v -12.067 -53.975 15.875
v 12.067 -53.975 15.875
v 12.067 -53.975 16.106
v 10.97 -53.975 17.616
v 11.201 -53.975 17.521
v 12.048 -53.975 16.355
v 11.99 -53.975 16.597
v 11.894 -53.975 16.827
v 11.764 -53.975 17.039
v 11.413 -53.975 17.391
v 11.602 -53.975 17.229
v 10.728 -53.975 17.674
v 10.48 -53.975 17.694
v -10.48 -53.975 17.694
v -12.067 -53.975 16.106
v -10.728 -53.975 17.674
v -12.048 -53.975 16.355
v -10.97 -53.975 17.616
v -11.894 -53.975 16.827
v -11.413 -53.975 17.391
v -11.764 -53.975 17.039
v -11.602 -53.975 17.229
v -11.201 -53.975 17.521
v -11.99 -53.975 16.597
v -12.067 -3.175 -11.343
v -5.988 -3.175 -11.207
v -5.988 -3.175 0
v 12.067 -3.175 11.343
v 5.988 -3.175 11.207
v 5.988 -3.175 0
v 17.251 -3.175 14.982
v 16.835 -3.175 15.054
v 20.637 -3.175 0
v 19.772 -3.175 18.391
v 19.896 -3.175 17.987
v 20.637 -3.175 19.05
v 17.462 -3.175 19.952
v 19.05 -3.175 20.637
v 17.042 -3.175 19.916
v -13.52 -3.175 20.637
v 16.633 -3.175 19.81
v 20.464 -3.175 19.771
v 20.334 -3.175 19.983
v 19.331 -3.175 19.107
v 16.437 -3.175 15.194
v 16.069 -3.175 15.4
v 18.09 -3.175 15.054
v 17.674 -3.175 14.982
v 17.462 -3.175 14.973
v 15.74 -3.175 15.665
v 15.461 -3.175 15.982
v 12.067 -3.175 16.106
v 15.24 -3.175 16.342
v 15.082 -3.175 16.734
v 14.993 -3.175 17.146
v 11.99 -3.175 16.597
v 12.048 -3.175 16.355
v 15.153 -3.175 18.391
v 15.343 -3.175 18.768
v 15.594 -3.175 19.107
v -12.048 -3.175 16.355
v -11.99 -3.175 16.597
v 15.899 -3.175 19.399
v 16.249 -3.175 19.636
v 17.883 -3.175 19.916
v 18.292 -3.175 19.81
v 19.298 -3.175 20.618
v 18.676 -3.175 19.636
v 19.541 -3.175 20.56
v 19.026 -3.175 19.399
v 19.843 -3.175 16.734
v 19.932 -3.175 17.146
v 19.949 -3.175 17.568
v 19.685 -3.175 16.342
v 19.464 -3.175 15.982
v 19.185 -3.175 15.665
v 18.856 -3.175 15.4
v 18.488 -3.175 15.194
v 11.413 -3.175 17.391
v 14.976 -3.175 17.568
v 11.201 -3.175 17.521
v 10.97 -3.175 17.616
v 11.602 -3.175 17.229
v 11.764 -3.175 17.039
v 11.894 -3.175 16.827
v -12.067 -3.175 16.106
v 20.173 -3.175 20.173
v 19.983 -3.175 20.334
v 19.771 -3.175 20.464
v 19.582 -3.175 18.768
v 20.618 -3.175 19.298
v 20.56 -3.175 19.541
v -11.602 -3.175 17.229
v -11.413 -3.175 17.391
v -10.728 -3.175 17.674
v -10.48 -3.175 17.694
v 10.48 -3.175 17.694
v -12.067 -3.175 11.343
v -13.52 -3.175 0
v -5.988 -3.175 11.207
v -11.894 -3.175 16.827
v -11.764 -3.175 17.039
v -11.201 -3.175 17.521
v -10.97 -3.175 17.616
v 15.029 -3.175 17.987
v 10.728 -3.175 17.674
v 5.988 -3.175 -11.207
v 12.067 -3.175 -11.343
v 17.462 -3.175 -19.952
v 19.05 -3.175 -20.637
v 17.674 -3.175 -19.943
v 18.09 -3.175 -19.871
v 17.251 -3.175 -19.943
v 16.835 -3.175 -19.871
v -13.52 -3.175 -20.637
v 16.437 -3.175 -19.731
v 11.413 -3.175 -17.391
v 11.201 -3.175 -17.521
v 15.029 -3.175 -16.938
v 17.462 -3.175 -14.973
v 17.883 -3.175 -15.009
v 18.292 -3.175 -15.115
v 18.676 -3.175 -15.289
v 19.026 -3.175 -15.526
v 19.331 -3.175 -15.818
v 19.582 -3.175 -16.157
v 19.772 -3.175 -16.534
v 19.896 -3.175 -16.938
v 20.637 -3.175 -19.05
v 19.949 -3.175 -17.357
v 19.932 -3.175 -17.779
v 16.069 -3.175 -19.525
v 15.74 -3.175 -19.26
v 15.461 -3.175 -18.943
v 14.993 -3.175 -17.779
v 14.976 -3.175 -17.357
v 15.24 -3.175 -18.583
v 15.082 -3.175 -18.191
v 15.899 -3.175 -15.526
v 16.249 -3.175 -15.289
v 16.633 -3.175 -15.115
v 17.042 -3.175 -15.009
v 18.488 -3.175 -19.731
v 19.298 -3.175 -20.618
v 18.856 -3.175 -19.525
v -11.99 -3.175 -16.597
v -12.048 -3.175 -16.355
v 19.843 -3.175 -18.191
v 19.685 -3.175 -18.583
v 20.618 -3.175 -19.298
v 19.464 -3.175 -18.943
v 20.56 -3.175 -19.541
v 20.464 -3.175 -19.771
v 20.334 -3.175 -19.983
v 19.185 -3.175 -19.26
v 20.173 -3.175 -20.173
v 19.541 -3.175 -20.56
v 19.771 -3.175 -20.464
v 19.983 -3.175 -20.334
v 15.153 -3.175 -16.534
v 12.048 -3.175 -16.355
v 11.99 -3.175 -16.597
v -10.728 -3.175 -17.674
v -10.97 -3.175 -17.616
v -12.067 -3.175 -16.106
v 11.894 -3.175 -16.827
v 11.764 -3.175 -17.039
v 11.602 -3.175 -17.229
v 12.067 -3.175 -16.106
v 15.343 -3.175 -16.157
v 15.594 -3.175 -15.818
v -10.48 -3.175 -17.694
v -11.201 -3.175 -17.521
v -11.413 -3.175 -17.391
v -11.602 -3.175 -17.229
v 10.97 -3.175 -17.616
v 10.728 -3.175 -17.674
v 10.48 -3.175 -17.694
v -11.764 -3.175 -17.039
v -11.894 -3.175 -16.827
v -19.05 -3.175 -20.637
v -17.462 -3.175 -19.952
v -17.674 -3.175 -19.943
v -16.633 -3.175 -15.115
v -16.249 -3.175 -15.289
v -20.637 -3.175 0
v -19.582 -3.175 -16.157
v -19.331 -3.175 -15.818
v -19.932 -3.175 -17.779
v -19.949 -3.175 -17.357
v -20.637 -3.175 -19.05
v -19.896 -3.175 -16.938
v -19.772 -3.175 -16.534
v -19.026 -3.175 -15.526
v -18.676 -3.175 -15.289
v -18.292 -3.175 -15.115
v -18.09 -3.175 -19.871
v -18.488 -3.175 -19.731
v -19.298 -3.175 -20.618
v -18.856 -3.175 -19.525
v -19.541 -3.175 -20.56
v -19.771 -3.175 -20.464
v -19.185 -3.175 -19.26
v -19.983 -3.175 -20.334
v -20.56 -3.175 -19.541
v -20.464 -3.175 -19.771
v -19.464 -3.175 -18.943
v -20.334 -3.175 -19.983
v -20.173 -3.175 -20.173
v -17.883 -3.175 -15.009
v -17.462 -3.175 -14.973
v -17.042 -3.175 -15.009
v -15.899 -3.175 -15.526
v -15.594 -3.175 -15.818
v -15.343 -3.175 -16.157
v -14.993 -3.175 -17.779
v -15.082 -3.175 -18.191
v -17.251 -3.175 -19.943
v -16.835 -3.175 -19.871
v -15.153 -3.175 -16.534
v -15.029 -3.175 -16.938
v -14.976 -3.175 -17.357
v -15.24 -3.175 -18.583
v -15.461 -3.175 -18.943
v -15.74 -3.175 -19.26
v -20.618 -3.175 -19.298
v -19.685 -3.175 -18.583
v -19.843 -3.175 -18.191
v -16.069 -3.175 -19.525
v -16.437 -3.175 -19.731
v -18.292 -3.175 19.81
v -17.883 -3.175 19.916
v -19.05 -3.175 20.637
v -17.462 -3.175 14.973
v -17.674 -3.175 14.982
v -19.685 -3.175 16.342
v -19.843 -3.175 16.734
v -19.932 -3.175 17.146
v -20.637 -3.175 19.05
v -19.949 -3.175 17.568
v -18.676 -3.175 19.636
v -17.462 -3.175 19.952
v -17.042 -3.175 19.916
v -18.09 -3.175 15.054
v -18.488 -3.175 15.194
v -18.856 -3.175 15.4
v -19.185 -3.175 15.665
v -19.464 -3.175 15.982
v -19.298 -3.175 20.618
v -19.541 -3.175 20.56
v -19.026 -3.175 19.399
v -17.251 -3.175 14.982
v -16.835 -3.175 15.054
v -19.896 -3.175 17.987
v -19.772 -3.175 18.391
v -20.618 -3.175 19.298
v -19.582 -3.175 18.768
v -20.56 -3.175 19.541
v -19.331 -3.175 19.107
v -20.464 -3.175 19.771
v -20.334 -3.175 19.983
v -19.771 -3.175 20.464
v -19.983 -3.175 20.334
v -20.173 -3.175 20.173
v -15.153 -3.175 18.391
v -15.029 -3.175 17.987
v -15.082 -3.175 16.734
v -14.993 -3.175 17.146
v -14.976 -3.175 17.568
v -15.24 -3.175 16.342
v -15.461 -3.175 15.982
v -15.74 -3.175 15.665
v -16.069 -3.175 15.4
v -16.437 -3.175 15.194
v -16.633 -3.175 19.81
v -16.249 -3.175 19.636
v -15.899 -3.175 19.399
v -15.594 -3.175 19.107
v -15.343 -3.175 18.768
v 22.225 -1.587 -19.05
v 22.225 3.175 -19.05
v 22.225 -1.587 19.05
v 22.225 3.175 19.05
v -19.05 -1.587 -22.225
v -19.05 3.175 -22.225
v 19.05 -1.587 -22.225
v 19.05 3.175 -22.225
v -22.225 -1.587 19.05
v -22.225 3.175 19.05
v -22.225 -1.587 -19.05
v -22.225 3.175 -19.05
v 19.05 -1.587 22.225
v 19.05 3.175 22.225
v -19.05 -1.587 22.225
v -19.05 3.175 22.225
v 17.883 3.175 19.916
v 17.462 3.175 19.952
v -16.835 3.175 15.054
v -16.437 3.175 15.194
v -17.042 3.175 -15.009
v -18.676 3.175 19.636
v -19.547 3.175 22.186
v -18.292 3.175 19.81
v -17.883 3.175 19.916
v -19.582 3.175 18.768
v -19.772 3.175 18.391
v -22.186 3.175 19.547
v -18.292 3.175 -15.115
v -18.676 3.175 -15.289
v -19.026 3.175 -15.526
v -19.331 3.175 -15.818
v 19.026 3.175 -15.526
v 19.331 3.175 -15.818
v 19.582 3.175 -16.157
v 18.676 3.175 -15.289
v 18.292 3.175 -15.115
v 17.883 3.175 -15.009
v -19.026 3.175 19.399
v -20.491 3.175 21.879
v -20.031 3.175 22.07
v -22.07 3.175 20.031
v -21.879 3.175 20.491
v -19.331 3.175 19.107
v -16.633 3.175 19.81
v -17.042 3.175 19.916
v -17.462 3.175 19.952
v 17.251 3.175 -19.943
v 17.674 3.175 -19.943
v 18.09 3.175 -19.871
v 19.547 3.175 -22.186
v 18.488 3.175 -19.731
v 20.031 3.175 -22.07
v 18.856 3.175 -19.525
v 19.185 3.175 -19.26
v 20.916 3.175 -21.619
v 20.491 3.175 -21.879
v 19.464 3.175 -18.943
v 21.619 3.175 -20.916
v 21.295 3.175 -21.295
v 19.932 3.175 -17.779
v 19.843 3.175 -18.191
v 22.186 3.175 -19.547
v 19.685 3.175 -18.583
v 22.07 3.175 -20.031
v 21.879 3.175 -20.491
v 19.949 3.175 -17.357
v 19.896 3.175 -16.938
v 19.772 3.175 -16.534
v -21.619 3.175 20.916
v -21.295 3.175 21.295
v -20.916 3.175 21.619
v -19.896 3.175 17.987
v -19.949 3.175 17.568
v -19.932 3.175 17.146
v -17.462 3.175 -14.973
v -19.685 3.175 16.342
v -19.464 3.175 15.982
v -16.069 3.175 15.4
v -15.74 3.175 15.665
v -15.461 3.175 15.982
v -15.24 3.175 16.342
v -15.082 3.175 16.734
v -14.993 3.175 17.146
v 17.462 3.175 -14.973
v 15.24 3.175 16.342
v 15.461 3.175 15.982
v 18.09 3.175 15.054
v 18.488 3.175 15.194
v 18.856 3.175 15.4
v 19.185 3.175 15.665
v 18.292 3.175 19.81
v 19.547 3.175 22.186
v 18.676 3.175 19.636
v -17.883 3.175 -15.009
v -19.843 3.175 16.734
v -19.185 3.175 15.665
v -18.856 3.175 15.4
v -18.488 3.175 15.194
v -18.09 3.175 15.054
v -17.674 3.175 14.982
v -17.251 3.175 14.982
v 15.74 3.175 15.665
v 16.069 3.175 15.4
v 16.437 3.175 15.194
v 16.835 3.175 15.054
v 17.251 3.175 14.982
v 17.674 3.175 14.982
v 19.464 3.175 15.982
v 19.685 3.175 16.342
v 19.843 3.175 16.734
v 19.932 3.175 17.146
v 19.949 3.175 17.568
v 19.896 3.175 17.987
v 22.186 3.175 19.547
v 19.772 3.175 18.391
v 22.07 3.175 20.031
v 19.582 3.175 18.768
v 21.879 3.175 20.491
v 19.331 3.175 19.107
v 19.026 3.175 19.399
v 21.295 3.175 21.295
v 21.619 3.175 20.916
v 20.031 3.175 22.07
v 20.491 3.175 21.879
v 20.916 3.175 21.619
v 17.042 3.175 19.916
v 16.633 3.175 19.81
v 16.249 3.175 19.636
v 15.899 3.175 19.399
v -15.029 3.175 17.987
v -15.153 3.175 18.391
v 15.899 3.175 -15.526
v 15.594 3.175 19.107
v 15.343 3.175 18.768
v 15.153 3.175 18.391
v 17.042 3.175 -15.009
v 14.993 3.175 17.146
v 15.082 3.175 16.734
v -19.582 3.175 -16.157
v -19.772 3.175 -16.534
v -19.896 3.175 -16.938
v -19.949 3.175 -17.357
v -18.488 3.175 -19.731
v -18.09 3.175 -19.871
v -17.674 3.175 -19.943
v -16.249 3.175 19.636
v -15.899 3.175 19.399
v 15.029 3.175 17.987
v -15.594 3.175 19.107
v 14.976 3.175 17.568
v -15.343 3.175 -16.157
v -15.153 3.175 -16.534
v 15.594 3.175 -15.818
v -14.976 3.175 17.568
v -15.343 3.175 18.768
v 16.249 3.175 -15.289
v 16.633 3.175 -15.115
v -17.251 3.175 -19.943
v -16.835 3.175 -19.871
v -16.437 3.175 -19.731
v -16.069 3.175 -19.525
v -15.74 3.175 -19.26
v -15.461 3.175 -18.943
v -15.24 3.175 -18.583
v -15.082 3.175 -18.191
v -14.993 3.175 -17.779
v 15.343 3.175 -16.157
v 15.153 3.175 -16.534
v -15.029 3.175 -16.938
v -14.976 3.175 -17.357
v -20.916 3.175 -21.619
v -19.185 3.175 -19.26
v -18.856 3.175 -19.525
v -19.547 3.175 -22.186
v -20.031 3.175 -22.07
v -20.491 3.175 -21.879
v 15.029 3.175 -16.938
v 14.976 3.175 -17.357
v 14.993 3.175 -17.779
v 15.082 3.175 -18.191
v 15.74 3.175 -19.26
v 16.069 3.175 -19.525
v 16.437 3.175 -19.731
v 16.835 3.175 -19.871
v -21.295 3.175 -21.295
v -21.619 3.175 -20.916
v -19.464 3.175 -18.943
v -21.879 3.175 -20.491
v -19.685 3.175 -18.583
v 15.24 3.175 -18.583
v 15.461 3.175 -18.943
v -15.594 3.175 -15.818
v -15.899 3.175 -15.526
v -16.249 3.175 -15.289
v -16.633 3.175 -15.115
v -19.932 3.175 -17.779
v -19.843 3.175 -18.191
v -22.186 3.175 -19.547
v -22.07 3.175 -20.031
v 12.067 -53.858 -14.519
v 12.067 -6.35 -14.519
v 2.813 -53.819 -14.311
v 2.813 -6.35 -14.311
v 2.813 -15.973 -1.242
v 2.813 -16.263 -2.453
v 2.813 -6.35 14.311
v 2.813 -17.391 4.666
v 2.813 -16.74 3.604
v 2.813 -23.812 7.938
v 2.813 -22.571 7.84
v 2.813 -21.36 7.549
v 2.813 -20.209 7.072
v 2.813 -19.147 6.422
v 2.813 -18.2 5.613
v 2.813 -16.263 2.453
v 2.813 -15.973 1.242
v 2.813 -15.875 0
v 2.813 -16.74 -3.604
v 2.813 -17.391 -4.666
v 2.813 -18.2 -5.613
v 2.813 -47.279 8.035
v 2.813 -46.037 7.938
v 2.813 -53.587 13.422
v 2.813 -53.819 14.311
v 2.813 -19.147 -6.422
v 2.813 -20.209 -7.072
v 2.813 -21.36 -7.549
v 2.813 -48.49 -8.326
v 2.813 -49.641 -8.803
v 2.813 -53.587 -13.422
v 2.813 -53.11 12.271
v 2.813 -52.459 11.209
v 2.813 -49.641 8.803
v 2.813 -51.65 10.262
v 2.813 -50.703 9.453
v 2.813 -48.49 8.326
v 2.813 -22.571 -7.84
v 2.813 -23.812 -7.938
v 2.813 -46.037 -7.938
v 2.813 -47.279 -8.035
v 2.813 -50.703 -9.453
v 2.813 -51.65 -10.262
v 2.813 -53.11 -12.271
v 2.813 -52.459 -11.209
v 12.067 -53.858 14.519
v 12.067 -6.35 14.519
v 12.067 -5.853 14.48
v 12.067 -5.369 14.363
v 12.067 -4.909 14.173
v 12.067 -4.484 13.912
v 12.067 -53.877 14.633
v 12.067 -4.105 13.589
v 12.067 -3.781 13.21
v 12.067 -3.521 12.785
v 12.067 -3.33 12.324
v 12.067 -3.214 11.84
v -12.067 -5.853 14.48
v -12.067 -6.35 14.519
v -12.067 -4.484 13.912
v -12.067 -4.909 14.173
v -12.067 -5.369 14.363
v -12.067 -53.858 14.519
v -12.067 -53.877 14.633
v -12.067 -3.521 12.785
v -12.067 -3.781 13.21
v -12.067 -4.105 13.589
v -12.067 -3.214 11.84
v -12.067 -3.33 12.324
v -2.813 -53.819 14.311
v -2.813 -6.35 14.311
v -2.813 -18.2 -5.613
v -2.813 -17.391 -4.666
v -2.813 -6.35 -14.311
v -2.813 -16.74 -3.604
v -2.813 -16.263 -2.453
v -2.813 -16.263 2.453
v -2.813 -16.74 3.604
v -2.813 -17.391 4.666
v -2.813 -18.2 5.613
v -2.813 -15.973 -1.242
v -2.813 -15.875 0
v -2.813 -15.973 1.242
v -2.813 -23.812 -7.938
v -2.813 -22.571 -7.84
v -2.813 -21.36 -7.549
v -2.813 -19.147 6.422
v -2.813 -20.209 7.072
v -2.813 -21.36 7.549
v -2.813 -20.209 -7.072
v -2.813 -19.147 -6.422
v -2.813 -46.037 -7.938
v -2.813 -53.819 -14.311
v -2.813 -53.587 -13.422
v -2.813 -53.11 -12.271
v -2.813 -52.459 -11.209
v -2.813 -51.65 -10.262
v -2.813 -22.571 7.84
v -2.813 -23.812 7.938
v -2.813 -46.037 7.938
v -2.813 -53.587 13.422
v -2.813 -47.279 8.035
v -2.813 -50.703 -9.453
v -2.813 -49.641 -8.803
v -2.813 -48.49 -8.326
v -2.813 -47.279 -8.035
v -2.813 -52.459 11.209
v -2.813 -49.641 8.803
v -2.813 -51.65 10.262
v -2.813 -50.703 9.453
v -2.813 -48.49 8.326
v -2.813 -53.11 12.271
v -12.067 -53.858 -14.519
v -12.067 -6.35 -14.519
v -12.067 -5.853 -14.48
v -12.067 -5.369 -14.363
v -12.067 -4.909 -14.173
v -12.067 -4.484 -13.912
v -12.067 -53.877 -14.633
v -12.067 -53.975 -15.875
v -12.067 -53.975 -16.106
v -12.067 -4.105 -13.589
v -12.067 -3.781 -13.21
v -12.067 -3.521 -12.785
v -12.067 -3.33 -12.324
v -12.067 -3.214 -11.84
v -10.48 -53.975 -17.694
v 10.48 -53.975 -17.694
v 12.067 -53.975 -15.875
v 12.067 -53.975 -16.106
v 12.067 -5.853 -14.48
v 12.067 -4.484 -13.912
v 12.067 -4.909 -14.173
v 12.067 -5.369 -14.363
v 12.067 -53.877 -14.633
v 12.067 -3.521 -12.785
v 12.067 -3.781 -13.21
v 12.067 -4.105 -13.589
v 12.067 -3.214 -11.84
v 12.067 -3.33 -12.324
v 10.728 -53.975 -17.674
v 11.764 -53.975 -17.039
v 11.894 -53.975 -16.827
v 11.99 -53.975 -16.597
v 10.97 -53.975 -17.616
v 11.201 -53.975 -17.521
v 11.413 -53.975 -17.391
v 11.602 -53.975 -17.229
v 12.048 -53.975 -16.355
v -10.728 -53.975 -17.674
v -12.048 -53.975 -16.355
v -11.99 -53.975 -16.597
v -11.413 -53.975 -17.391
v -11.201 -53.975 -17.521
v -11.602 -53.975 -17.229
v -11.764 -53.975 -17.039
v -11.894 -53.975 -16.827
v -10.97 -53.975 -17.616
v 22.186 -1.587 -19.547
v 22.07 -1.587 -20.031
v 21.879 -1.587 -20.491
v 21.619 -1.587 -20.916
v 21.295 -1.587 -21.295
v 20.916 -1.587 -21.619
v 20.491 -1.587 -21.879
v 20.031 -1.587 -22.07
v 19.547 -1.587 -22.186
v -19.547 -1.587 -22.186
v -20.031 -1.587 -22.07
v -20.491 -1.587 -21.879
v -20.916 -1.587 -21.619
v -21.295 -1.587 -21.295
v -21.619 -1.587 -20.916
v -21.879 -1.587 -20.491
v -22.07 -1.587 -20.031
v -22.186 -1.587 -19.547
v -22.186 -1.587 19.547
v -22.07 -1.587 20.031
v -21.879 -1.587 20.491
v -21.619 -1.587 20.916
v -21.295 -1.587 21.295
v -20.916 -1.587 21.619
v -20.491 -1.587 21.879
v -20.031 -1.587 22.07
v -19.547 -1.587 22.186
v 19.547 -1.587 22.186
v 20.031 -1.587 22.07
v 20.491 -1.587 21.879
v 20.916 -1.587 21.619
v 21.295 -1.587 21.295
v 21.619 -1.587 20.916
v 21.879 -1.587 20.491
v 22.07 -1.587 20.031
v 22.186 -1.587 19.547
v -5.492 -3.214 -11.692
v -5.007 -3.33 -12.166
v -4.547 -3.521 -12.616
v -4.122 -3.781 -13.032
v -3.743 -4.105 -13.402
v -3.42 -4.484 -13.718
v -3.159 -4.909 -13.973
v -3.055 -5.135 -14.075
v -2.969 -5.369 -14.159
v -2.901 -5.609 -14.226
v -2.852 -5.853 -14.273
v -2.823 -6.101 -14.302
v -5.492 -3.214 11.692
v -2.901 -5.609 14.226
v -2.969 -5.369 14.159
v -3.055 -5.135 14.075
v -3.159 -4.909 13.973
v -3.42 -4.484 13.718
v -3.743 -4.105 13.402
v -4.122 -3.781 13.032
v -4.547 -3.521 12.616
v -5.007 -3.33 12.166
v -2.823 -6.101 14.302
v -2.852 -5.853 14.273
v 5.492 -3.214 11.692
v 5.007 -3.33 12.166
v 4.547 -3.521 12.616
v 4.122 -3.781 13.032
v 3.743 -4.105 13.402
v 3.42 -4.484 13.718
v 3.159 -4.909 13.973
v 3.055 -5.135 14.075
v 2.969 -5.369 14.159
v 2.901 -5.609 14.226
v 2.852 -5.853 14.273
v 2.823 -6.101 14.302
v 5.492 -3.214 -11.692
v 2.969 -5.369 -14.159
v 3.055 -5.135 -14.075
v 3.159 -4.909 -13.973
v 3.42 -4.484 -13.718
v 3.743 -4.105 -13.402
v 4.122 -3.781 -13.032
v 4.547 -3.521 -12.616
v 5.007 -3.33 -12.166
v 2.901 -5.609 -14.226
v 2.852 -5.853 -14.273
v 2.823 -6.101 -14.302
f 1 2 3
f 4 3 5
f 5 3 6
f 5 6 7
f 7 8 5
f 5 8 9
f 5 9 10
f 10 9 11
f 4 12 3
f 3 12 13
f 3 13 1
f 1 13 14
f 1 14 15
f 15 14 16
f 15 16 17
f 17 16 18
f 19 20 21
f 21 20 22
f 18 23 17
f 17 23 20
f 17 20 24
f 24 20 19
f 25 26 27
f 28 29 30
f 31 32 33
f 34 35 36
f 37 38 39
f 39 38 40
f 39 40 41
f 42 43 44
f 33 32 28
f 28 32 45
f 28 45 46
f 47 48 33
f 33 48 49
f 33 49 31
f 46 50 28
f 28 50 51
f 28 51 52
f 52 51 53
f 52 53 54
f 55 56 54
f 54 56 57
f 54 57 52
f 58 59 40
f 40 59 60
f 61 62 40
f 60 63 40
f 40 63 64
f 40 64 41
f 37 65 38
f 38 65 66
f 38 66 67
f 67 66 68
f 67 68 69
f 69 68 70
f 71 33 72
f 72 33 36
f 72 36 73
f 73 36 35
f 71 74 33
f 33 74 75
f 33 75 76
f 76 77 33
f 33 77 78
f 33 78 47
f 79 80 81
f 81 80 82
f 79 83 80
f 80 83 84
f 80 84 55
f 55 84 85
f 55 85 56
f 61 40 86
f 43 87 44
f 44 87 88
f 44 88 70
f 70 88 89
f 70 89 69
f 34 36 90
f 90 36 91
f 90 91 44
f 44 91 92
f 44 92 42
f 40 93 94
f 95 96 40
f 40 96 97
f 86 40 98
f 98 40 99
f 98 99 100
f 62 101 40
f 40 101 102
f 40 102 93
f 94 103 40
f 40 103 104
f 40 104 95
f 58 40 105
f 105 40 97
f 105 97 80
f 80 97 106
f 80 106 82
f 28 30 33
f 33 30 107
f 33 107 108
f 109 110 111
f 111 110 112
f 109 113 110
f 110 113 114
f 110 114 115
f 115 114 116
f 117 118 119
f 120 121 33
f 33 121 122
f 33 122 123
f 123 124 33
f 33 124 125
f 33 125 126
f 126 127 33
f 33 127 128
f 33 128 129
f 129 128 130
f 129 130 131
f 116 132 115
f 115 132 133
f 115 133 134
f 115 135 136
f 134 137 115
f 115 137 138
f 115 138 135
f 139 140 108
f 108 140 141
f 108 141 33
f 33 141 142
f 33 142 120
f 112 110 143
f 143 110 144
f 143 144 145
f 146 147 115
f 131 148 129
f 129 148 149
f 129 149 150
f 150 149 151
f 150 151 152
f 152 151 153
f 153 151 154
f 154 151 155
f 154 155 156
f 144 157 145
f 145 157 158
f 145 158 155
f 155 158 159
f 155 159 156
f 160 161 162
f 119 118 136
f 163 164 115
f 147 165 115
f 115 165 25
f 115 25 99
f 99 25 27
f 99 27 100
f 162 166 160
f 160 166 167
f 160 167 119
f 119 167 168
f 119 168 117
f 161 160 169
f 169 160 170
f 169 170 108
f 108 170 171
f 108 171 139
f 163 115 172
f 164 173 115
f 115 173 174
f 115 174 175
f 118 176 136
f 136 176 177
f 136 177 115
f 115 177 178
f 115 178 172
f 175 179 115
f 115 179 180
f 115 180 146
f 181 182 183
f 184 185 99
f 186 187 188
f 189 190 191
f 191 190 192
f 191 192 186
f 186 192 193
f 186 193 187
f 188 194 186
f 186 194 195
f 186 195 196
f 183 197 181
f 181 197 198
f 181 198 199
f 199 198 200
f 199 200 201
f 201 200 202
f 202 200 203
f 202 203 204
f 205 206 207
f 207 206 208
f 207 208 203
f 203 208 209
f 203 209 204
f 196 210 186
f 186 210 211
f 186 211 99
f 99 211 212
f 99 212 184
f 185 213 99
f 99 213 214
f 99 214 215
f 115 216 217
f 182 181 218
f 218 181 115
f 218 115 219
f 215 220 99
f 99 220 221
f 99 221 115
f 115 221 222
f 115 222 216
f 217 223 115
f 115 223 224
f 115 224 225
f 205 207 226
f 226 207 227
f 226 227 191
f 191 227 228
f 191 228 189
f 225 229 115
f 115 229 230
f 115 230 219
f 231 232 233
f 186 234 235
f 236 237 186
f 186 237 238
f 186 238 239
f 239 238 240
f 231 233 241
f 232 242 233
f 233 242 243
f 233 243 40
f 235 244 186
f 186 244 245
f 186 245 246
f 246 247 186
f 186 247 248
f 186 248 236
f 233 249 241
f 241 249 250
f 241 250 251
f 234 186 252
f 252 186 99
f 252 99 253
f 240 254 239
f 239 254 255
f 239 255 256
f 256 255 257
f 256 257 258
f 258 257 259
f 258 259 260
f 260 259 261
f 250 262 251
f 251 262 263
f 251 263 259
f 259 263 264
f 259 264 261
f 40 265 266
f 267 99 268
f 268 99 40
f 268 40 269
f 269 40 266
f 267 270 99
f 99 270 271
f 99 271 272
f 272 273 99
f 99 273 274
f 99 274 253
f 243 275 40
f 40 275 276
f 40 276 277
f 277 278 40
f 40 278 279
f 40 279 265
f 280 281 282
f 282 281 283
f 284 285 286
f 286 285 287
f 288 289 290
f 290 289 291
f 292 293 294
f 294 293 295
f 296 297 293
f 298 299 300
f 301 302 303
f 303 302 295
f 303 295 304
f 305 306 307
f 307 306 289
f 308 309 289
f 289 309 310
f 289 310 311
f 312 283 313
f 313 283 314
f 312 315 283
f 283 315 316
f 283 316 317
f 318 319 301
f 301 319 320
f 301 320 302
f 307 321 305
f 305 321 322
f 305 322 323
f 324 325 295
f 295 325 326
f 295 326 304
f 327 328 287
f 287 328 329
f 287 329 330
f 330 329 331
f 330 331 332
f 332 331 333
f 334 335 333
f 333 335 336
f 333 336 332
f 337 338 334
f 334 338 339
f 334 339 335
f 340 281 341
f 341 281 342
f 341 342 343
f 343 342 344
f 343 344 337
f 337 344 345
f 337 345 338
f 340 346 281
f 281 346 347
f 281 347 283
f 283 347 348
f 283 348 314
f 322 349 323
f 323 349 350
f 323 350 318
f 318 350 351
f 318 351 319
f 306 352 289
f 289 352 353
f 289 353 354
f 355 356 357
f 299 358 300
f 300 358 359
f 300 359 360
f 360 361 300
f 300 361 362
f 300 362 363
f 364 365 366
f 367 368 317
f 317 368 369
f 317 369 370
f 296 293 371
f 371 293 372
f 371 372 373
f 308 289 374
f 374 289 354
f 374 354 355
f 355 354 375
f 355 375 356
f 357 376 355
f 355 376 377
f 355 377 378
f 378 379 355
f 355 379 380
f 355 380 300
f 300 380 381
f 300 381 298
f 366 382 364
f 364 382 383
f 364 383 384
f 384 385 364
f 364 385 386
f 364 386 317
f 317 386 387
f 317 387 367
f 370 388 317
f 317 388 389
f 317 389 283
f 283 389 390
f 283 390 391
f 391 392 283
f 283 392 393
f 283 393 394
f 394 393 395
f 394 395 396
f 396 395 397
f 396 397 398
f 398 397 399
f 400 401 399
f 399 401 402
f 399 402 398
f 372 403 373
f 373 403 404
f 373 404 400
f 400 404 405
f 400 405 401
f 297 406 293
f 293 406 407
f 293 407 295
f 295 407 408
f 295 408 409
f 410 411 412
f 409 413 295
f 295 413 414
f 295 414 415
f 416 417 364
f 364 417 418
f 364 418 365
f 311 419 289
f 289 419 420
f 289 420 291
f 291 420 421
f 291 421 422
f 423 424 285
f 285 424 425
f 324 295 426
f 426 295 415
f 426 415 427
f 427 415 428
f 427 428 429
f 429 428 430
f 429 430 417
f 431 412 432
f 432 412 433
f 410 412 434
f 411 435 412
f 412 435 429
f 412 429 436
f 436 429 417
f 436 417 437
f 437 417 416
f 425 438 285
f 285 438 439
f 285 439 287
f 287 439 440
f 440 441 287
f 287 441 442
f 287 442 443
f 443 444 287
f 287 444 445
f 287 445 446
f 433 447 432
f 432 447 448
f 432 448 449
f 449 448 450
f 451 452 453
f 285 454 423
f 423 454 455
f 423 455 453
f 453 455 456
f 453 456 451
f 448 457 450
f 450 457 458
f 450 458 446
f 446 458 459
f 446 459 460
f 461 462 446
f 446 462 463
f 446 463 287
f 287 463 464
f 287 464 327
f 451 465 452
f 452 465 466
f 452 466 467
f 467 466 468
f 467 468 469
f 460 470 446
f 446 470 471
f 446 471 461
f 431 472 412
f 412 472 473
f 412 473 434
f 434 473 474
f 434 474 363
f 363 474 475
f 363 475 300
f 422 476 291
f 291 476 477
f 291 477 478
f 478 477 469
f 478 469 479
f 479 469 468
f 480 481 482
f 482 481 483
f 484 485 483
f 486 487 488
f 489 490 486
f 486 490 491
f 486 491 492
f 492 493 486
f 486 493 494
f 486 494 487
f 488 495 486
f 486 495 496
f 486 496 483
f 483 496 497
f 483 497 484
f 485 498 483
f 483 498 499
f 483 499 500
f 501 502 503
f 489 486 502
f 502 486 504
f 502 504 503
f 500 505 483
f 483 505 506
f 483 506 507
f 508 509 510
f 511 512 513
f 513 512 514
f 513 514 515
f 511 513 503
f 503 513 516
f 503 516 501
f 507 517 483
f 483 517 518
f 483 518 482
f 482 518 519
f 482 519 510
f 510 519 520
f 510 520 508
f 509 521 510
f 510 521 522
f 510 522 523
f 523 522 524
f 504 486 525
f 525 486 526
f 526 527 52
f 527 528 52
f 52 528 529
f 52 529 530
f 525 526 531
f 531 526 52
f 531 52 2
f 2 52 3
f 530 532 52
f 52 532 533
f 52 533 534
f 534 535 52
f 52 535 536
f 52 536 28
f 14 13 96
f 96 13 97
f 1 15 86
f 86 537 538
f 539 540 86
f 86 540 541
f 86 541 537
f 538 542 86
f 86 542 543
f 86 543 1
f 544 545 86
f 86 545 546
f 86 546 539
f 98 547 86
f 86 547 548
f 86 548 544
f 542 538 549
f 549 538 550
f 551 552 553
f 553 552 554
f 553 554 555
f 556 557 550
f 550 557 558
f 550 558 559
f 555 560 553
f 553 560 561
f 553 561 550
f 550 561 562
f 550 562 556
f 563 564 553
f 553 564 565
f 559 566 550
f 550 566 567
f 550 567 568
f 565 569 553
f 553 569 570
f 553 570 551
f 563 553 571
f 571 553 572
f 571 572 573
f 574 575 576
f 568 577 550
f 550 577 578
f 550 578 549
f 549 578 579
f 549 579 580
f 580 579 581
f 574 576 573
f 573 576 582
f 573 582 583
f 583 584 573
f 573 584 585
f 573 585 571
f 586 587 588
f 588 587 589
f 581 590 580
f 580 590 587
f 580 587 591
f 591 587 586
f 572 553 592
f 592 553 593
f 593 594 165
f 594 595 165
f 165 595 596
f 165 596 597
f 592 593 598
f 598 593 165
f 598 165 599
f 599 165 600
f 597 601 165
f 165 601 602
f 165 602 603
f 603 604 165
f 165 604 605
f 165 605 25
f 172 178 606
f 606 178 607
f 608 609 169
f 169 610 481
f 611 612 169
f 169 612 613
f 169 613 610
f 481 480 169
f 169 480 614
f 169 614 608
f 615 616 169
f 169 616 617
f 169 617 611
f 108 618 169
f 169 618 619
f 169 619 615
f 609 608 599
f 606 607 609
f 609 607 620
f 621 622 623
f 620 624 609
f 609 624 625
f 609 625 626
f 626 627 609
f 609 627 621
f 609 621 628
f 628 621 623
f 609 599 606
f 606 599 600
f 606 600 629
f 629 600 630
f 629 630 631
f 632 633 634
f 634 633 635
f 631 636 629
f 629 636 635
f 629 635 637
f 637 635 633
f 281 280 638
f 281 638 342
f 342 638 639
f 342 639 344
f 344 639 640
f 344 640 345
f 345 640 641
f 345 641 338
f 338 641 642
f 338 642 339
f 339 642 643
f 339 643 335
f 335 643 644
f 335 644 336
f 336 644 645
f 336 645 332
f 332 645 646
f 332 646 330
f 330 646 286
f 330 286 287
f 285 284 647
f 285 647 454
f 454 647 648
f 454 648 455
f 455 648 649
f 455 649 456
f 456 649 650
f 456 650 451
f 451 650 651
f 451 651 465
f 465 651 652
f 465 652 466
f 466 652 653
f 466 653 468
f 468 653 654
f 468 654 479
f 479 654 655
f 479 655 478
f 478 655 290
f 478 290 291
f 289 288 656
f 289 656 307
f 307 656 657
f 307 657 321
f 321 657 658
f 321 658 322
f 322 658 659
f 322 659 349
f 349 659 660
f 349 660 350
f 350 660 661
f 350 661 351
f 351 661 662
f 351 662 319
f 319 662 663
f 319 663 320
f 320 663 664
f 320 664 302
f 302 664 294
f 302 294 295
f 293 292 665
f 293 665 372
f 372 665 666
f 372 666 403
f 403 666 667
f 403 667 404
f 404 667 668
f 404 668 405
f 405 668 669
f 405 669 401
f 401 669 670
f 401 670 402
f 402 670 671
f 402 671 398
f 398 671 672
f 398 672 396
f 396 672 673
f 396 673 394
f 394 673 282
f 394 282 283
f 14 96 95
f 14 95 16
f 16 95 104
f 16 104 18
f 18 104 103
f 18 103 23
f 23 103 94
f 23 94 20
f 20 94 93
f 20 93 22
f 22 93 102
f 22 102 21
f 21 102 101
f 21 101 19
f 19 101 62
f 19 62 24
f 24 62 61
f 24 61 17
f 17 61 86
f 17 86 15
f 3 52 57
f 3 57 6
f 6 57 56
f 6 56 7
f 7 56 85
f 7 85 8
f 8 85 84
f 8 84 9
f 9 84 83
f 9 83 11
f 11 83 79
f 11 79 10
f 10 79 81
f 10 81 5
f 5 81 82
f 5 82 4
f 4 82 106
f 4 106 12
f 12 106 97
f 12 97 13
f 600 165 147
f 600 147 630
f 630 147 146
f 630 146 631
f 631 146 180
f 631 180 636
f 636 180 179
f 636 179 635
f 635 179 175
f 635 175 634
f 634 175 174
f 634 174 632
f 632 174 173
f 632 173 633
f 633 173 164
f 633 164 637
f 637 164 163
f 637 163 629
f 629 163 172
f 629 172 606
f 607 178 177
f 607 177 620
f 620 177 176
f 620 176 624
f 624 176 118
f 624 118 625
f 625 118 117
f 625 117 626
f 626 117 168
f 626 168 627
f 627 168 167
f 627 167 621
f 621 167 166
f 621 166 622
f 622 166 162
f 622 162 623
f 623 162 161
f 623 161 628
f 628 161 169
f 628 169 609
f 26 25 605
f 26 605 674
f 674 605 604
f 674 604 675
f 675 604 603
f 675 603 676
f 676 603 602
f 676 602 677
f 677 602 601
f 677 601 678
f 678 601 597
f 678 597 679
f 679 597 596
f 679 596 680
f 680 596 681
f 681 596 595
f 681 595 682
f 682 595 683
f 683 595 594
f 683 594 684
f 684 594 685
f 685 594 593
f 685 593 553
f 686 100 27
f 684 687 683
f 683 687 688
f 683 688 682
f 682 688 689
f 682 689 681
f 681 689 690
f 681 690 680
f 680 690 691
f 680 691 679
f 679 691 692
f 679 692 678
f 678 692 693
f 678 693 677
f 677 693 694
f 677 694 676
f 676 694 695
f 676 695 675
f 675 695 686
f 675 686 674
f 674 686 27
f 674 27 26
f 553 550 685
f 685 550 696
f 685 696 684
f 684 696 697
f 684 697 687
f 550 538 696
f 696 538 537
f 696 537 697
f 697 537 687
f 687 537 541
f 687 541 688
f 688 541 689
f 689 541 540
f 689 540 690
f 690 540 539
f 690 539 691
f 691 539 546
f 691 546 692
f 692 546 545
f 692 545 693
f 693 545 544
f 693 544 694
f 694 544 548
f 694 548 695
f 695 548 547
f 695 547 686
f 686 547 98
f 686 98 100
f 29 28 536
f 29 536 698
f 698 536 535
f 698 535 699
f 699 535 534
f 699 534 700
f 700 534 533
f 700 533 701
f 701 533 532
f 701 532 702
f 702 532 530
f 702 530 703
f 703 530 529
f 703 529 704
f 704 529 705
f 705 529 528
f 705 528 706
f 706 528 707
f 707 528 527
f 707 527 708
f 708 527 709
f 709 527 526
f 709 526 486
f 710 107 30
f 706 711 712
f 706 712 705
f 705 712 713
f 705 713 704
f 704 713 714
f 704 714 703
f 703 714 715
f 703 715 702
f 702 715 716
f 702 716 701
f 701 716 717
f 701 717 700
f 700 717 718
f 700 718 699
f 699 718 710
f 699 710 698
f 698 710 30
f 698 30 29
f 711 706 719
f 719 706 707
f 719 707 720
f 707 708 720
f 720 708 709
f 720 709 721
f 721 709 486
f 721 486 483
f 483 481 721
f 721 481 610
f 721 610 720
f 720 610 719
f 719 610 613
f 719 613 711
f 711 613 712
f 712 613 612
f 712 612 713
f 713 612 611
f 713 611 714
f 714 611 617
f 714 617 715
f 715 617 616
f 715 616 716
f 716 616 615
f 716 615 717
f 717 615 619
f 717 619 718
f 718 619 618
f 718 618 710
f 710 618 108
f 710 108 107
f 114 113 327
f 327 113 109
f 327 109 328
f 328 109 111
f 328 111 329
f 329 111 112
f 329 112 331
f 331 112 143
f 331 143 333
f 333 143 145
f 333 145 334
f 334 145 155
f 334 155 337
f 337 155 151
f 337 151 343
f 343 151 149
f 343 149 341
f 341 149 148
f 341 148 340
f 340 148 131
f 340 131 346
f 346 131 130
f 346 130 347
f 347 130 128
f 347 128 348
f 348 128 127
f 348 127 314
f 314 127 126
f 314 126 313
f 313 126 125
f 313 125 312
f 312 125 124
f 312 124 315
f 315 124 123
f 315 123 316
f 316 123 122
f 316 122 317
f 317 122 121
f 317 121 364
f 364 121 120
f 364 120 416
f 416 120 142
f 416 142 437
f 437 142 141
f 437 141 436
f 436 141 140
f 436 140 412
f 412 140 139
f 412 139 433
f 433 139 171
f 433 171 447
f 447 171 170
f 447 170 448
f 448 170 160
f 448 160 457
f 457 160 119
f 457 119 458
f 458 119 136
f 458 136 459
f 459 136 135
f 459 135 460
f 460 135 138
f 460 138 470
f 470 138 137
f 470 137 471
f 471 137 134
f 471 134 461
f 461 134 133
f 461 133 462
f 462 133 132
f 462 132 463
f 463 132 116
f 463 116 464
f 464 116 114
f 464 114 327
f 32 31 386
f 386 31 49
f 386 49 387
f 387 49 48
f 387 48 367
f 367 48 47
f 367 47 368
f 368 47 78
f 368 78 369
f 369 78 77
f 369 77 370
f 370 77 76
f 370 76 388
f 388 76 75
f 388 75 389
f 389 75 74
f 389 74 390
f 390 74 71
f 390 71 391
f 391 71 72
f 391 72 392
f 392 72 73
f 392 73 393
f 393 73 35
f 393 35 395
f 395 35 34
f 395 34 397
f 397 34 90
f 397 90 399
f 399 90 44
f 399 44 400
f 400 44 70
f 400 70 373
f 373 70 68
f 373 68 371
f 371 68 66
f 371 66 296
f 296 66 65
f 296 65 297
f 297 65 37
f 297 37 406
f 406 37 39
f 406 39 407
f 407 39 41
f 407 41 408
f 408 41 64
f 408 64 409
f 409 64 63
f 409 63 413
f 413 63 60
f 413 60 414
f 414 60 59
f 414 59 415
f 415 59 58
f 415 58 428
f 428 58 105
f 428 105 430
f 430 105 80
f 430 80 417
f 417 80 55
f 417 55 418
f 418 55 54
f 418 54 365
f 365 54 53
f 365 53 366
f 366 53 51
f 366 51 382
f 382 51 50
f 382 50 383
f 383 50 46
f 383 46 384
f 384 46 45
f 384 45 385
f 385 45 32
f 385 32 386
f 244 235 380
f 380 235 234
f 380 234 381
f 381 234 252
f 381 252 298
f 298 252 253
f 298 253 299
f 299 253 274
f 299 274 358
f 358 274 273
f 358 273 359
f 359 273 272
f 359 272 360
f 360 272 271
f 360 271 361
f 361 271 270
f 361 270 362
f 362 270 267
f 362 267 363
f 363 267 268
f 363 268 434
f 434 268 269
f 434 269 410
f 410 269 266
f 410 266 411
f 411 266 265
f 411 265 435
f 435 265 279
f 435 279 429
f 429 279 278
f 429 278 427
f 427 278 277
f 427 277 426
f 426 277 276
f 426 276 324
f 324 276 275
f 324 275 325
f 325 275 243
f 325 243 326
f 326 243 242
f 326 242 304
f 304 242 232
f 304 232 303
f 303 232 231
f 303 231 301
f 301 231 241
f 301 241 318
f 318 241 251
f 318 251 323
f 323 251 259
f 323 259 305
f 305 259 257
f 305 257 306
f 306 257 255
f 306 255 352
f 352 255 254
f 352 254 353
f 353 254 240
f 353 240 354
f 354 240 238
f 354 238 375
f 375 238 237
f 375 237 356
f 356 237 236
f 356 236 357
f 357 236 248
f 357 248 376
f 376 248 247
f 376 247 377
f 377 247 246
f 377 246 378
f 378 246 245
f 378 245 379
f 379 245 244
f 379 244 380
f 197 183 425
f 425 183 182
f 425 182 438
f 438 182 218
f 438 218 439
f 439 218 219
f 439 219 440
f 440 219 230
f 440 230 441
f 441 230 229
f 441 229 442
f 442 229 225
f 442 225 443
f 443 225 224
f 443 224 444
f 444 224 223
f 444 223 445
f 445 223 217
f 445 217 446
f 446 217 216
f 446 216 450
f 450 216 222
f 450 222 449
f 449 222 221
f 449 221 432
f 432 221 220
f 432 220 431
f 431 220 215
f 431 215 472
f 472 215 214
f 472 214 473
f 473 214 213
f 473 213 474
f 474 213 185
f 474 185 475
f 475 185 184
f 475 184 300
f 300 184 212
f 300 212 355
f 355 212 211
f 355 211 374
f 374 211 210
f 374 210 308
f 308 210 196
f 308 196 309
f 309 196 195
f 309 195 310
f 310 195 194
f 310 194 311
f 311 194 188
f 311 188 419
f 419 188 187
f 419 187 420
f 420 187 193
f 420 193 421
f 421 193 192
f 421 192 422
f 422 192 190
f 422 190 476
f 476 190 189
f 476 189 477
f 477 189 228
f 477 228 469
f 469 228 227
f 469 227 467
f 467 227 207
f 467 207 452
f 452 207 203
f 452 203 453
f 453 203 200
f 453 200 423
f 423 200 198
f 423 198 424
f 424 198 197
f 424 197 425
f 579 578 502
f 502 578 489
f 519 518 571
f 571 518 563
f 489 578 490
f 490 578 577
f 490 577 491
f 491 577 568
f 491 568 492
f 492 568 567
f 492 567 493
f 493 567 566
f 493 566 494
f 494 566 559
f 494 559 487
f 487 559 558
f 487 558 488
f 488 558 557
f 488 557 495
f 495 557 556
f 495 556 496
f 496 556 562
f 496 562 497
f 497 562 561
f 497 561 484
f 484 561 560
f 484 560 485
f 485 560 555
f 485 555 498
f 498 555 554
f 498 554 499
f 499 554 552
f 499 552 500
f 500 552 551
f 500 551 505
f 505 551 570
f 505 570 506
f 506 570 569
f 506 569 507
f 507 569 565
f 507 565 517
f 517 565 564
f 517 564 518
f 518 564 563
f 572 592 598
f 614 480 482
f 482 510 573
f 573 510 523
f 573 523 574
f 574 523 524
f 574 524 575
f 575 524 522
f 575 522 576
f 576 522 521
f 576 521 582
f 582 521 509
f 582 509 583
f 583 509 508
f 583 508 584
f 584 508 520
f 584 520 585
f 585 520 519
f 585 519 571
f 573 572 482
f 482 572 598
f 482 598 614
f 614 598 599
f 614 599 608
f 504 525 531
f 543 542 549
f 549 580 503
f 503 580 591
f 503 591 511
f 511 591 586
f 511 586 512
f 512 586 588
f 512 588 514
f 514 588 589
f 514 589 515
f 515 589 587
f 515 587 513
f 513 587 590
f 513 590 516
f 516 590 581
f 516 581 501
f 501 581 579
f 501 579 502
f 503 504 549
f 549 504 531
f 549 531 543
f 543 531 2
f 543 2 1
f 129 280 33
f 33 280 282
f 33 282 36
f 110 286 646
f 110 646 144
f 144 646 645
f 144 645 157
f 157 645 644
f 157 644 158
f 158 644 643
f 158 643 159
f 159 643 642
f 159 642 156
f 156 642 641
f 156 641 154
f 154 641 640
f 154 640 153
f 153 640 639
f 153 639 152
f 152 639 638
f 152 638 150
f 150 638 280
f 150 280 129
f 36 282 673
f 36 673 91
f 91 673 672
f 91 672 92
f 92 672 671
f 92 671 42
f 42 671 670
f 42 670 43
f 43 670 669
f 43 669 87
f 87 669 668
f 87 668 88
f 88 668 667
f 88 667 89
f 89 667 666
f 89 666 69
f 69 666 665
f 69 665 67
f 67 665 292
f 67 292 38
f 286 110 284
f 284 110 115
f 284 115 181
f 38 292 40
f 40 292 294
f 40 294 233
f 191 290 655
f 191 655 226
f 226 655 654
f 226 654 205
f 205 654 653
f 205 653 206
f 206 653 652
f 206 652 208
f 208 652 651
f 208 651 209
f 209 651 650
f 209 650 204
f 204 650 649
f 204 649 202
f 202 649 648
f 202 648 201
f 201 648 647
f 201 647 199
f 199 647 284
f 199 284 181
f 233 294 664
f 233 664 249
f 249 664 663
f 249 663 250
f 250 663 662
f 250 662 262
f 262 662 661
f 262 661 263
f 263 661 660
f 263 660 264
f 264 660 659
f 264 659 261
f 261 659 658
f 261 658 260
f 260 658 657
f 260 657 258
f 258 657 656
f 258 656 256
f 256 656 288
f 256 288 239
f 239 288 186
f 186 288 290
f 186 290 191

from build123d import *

# Parameters (mm, degrees)
SKETCH1_W           = 44.45
SKETCH1_H           = 44.45
BOSS_EXTRUDE1_DEPTH = 3.175
BOSS_EXTRUDE2_DEPTH = 50.8
FILLET1_R           = 3.175
FILLET2_R           = 1.5875
FILLET3_R           = 3.175
SKETCH4_R           = 2.4892
CUT_EXTRUDE1_DEPTH  = 66.222877505
SKETCH5_W           = 15.875
SKETCH5_H           = 38.1
CUT_EXTRUDE2_DEPTH  = 64.515137759
FILLET4_R           = 7.9375
FILLET5_R           = 7.9375
CHAMFER1_SIZE       = 1.5875


with BuildPart() as part:
    # Sketch1 → Boss-Extrude1 (new, symmetric)
    with BuildSketch(Plane(origin=(0, 0, 0), x_dir=(1, 0, 0), z_dir=(0, 1, 0))):
        Rectangle(SKETCH1_W, SKETCH1_H)
    extrude(amount=BOSS_EXTRUDE1_DEPTH, both=True)

    # Sketch3 → Boss-Extrude2 (add)
    with BuildSketch(Plane.XZ.offset(3.175)):
        Polygon((12.0674, 14.518814274), (2.8134, 14.31134463), (2.8134, -14.31134463), (12.0674, -14.518814274), (12.0674, -17.693814274), (-12.0674, -17.693814274), (-12.0674, -14.518814274), (-2.8134, -14.31134463), (-2.8134, 14.31134463), (-12.0674, 14.518814274), (-12.0674, 17.693814274), (12.0674, 17.693814274), align=None)
    extrude(amount=BOSS_EXTRUDE2_DEPTH)

    # Fillet1
    fillet1_edges = [part.edges().sort_by_distance(p)[0] for p in [
        (22.225, 0, 22.225),
        (-22.225, 0, 22.225),
        (-22.225, 0, -22.225),
        (22.225, 0, -22.225),
    ]]
    fillet(fillet1_edges, radius=FILLET1_R)

    # Fillet2
    fillet2_edges = [part.edges().sort_by_distance(p)[0] for p in [
        (12.0674, -28.575, 17.693814274),
        (-12.0674, -28.575, 17.693814274),
        (-12.0674, -28.575, -17.693814274),
        (12.0674, -28.575, -17.693814274),
    ]]
    fillet(fillet2_edges, radius=FILLET2_R)

    # Fillet3
    fillet3_edges = [part.edges().sort_by_distance(p)[0] for p in [
        (7.4404, -3.175, -14.415079452),
        (2.8134, -3.175, 0),
        (7.4404, -3.175, 14.415079452),
        (-7.4404, -3.175, 14.415079452),
        (-2.8134, -3.175, 0),
        (-7.4404, -3.175, -14.415079452),
    ]]
    fillet(fillet3_edges, radius=FILLET3_R)

    # Sketch4 → Cut-Extrude1 (cut, through all)
    with BuildSketch(Plane(origin=(0, 3.175, 0), x_dir=(1, 0, 0), z_dir=(0, 1, 0))):
        with Locations(Location((17.4625, 17.4625, 0), (0, 0, 270))):
            Circle(SKETCH4_R)
        with Locations(Location((17.4625, -17.4625, 0), (0, 0, 270))):
            Circle(SKETCH4_R)
        with Locations(Location((-17.4625, -17.4625, 0), (0, 0, 270))):
            Circle(SKETCH4_R)
        with Locations(Location((-17.4625, 17.4625, 0), (0, 0, 270))):
            Circle(SKETCH4_R)
    extrude(amount=-CUT_EXTRUDE1_DEPTH, mode=Mode.SUBTRACT)

    # Sketch5 → Cut-Extrude2 (cut, through all)
    with BuildSketch(Plane(origin=(2.8134, 0, 0), x_dir=(0, 0, -1), z_dir=(1, 0, 0))):
        with Locations((0, -34.925)):
            Rectangle(SKETCH5_W, SKETCH5_H)
    extrude(amount=-CUT_EXTRUDE2_DEPTH, mode=Mode.SUBTRACT)

    # Fillet4
    fillet4_edges = [part.edges().sort_by_distance(p)[0] for p in [
        (0, -15.875, -7.9375),
        (0, -15.875, 7.9375),
    ]]
    fillet(fillet4_edges, radius=FILLET4_R - 0.0001)  # a hair under: the kernel refuses the full size

    # Fillet5
    fillet5_edges = [part.edges().sort_by_distance(p)[0] for p in [
        (0, -53.975, -7.9375),
        (0, -53.975, 7.9375),
    ]]
    fillet(fillet5_edges, radius=FILLET5_R)

    # Chamfer1
    chamfer1_edges = [part.edges().sort_by_distance(p)[0] for p in [
        (0, -3.175, -22.225),
        (22.225, -3.175, 0),
        (0, -3.175, 22.225),
        (-22.225, -3.175, 0),
        (21.29506403, -3.175, 21.29506403),
        (-21.29506403, -3.175, 21.29506403),
        (-21.29506403, -3.175, -21.29506403),
        (21.29506403, -3.175, -21.29506403),
    ]]
    chamfer(chamfer1_edges, length=CHAMFER1_SIZE)


solid = part.part
